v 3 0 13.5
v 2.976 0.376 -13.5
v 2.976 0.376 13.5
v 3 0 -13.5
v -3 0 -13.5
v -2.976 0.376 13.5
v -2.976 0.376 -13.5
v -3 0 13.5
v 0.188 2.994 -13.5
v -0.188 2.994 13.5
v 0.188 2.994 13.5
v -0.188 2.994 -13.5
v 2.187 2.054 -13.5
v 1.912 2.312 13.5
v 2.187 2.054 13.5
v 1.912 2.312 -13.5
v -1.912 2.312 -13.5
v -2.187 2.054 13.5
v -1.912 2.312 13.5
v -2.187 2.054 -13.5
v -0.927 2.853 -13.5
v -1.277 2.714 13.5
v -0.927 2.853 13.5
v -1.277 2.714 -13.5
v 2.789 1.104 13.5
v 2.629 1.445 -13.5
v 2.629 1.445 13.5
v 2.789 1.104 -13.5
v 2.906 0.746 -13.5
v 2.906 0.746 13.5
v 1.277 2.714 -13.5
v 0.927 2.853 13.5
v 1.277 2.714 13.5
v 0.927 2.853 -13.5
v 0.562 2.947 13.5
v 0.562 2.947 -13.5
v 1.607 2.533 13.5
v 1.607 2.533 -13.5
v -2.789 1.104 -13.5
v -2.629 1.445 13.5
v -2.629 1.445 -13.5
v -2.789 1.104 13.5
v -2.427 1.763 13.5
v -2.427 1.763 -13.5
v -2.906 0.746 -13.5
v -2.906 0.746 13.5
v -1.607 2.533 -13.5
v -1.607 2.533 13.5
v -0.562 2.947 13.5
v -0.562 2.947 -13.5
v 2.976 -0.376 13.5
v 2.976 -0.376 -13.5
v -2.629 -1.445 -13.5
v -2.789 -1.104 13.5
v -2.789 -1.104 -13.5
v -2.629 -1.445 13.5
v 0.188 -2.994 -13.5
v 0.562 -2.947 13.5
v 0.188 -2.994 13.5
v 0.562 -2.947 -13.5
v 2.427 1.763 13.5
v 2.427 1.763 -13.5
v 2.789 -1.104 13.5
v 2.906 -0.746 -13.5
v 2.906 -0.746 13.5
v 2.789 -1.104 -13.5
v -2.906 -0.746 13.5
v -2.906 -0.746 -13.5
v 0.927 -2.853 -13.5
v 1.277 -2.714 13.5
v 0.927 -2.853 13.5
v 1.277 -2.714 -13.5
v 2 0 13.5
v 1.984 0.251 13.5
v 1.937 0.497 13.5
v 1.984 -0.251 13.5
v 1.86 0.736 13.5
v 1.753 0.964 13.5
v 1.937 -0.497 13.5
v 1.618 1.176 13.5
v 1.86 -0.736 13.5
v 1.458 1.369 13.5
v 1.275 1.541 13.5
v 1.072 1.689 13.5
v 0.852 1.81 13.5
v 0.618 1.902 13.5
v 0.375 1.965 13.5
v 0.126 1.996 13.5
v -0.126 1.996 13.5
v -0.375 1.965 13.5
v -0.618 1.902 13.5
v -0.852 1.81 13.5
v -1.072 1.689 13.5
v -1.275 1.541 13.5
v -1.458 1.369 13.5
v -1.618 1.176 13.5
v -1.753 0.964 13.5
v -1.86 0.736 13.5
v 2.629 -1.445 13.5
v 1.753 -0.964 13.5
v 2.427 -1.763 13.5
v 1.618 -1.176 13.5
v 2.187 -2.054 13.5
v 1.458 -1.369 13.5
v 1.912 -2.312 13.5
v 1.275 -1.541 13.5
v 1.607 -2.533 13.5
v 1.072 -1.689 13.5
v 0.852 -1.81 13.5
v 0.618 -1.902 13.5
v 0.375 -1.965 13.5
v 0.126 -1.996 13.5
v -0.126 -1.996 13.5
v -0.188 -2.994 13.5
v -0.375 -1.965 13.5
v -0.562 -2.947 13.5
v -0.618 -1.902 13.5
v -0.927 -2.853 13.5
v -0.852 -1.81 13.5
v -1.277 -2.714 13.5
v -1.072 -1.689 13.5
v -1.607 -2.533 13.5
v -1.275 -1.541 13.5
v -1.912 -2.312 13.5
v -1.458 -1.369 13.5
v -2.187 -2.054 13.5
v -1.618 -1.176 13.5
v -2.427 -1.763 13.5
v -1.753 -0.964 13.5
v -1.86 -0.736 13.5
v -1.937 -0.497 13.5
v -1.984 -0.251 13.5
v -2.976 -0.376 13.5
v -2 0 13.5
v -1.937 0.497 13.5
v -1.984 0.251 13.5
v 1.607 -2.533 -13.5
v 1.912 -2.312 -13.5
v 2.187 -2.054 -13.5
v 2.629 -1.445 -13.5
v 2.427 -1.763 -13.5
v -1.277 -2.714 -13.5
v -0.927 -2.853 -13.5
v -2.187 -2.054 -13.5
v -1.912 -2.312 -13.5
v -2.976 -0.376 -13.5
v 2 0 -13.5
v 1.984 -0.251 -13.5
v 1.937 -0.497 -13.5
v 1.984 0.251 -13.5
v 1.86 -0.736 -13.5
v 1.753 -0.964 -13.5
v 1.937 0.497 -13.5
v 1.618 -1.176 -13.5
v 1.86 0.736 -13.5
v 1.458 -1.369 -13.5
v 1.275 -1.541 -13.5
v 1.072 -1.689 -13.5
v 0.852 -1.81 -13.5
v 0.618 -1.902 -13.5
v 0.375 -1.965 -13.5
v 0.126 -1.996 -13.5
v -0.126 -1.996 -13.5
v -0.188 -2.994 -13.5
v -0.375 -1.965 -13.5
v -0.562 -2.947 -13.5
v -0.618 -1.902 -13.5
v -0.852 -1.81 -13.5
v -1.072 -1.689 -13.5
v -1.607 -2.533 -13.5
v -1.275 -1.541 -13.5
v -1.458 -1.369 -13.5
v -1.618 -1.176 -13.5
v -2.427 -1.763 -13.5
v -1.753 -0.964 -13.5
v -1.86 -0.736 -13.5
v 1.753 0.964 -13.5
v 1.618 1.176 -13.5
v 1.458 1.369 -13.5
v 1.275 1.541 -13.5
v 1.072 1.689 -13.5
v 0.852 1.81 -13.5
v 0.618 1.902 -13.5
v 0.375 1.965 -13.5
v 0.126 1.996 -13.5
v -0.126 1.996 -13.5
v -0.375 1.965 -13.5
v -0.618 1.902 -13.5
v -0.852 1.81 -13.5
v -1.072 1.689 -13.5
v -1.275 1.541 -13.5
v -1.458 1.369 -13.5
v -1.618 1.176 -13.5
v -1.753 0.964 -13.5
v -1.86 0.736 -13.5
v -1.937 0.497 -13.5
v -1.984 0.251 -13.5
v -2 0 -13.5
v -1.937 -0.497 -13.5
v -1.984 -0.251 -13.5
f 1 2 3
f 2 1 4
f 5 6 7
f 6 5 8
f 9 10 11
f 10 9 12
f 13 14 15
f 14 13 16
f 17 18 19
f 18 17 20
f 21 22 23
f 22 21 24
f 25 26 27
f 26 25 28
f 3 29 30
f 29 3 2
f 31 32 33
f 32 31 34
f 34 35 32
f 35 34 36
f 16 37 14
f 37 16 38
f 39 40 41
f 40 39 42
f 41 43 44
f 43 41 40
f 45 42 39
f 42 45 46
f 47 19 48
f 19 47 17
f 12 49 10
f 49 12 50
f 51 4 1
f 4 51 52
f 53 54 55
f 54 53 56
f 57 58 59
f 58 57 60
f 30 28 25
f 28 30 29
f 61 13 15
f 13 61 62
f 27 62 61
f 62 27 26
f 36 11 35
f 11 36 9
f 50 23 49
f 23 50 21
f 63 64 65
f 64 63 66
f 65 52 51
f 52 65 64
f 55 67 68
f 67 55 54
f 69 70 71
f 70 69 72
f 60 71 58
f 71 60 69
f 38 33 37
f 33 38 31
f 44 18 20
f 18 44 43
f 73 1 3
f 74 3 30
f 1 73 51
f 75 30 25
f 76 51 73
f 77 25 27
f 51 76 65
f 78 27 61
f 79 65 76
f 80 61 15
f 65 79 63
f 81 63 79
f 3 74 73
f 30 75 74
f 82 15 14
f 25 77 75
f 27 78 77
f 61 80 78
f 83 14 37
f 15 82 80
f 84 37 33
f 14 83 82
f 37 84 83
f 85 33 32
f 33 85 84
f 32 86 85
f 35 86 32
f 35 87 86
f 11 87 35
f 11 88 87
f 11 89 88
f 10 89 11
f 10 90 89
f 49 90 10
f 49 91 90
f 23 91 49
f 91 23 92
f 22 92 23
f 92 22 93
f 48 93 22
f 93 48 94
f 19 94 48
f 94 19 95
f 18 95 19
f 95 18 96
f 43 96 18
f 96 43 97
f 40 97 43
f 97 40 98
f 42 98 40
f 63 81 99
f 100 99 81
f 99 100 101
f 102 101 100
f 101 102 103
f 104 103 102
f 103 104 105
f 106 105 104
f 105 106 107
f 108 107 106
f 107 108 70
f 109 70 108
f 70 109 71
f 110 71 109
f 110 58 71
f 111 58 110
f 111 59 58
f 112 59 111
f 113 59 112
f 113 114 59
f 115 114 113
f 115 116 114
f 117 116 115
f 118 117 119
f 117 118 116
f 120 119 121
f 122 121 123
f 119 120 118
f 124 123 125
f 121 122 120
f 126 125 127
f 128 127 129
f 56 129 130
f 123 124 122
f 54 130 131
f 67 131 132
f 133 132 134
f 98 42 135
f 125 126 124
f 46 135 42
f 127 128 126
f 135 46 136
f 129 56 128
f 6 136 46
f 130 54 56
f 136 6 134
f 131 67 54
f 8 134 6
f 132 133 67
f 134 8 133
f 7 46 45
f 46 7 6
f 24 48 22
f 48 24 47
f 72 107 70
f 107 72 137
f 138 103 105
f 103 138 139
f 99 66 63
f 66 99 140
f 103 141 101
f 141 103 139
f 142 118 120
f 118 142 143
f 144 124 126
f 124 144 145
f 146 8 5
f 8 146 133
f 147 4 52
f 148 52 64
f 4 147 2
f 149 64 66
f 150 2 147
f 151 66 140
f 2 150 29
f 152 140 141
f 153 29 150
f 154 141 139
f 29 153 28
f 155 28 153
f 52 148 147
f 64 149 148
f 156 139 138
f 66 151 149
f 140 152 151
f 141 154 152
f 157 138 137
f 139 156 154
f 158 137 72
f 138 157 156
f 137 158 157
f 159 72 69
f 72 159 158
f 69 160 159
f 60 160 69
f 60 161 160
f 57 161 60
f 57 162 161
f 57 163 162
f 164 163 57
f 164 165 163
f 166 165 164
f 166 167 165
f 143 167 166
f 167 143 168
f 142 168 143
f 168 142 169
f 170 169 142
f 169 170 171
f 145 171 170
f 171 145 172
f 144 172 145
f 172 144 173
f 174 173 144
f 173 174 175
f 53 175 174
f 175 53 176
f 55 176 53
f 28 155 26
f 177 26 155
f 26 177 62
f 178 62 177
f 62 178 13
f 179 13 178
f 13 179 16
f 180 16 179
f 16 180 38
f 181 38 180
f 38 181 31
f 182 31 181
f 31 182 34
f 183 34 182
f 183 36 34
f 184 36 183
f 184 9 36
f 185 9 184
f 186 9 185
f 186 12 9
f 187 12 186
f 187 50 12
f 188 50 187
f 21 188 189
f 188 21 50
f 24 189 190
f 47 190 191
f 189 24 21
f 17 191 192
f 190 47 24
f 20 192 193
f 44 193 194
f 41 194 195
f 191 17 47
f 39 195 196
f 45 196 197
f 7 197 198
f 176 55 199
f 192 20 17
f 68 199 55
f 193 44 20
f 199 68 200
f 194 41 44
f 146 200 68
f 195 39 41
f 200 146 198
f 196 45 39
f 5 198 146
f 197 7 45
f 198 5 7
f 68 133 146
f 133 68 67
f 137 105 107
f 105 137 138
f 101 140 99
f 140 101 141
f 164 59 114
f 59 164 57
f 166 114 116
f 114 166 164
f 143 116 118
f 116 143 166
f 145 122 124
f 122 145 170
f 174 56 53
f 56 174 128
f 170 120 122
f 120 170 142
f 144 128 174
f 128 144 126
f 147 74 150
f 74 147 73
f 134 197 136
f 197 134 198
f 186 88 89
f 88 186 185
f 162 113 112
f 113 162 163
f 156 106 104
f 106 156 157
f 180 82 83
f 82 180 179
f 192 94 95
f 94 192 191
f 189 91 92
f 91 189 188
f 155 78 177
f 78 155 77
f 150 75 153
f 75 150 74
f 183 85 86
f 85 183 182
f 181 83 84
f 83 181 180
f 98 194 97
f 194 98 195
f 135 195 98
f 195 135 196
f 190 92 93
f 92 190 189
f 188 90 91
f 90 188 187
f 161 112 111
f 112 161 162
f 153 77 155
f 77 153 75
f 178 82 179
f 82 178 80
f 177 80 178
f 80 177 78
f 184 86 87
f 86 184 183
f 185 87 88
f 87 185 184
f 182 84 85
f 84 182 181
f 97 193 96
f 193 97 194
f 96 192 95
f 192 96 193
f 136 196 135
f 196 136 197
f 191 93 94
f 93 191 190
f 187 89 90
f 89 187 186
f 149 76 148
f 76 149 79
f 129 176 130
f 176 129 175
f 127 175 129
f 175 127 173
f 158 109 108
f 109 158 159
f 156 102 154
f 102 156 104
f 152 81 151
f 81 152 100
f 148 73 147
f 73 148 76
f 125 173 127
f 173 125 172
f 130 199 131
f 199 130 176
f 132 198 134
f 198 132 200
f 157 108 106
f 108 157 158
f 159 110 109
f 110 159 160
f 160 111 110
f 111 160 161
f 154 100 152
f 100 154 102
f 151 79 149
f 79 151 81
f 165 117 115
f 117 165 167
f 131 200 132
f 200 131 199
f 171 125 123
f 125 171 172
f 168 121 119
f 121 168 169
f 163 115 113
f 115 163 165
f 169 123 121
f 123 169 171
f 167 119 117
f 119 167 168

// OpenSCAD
$fn = 50;


difference() {
	union() {
		translate(v = [0, 0, -13.5000000000]) {
			cylinder(h = 27, r = 3.0000000000);
		}
	}
	union() {
		translate(v = [0, 0, -100.0000000000]) {
			cylinder(h = 200, r = 2.0000000000);
		}
	}
}
